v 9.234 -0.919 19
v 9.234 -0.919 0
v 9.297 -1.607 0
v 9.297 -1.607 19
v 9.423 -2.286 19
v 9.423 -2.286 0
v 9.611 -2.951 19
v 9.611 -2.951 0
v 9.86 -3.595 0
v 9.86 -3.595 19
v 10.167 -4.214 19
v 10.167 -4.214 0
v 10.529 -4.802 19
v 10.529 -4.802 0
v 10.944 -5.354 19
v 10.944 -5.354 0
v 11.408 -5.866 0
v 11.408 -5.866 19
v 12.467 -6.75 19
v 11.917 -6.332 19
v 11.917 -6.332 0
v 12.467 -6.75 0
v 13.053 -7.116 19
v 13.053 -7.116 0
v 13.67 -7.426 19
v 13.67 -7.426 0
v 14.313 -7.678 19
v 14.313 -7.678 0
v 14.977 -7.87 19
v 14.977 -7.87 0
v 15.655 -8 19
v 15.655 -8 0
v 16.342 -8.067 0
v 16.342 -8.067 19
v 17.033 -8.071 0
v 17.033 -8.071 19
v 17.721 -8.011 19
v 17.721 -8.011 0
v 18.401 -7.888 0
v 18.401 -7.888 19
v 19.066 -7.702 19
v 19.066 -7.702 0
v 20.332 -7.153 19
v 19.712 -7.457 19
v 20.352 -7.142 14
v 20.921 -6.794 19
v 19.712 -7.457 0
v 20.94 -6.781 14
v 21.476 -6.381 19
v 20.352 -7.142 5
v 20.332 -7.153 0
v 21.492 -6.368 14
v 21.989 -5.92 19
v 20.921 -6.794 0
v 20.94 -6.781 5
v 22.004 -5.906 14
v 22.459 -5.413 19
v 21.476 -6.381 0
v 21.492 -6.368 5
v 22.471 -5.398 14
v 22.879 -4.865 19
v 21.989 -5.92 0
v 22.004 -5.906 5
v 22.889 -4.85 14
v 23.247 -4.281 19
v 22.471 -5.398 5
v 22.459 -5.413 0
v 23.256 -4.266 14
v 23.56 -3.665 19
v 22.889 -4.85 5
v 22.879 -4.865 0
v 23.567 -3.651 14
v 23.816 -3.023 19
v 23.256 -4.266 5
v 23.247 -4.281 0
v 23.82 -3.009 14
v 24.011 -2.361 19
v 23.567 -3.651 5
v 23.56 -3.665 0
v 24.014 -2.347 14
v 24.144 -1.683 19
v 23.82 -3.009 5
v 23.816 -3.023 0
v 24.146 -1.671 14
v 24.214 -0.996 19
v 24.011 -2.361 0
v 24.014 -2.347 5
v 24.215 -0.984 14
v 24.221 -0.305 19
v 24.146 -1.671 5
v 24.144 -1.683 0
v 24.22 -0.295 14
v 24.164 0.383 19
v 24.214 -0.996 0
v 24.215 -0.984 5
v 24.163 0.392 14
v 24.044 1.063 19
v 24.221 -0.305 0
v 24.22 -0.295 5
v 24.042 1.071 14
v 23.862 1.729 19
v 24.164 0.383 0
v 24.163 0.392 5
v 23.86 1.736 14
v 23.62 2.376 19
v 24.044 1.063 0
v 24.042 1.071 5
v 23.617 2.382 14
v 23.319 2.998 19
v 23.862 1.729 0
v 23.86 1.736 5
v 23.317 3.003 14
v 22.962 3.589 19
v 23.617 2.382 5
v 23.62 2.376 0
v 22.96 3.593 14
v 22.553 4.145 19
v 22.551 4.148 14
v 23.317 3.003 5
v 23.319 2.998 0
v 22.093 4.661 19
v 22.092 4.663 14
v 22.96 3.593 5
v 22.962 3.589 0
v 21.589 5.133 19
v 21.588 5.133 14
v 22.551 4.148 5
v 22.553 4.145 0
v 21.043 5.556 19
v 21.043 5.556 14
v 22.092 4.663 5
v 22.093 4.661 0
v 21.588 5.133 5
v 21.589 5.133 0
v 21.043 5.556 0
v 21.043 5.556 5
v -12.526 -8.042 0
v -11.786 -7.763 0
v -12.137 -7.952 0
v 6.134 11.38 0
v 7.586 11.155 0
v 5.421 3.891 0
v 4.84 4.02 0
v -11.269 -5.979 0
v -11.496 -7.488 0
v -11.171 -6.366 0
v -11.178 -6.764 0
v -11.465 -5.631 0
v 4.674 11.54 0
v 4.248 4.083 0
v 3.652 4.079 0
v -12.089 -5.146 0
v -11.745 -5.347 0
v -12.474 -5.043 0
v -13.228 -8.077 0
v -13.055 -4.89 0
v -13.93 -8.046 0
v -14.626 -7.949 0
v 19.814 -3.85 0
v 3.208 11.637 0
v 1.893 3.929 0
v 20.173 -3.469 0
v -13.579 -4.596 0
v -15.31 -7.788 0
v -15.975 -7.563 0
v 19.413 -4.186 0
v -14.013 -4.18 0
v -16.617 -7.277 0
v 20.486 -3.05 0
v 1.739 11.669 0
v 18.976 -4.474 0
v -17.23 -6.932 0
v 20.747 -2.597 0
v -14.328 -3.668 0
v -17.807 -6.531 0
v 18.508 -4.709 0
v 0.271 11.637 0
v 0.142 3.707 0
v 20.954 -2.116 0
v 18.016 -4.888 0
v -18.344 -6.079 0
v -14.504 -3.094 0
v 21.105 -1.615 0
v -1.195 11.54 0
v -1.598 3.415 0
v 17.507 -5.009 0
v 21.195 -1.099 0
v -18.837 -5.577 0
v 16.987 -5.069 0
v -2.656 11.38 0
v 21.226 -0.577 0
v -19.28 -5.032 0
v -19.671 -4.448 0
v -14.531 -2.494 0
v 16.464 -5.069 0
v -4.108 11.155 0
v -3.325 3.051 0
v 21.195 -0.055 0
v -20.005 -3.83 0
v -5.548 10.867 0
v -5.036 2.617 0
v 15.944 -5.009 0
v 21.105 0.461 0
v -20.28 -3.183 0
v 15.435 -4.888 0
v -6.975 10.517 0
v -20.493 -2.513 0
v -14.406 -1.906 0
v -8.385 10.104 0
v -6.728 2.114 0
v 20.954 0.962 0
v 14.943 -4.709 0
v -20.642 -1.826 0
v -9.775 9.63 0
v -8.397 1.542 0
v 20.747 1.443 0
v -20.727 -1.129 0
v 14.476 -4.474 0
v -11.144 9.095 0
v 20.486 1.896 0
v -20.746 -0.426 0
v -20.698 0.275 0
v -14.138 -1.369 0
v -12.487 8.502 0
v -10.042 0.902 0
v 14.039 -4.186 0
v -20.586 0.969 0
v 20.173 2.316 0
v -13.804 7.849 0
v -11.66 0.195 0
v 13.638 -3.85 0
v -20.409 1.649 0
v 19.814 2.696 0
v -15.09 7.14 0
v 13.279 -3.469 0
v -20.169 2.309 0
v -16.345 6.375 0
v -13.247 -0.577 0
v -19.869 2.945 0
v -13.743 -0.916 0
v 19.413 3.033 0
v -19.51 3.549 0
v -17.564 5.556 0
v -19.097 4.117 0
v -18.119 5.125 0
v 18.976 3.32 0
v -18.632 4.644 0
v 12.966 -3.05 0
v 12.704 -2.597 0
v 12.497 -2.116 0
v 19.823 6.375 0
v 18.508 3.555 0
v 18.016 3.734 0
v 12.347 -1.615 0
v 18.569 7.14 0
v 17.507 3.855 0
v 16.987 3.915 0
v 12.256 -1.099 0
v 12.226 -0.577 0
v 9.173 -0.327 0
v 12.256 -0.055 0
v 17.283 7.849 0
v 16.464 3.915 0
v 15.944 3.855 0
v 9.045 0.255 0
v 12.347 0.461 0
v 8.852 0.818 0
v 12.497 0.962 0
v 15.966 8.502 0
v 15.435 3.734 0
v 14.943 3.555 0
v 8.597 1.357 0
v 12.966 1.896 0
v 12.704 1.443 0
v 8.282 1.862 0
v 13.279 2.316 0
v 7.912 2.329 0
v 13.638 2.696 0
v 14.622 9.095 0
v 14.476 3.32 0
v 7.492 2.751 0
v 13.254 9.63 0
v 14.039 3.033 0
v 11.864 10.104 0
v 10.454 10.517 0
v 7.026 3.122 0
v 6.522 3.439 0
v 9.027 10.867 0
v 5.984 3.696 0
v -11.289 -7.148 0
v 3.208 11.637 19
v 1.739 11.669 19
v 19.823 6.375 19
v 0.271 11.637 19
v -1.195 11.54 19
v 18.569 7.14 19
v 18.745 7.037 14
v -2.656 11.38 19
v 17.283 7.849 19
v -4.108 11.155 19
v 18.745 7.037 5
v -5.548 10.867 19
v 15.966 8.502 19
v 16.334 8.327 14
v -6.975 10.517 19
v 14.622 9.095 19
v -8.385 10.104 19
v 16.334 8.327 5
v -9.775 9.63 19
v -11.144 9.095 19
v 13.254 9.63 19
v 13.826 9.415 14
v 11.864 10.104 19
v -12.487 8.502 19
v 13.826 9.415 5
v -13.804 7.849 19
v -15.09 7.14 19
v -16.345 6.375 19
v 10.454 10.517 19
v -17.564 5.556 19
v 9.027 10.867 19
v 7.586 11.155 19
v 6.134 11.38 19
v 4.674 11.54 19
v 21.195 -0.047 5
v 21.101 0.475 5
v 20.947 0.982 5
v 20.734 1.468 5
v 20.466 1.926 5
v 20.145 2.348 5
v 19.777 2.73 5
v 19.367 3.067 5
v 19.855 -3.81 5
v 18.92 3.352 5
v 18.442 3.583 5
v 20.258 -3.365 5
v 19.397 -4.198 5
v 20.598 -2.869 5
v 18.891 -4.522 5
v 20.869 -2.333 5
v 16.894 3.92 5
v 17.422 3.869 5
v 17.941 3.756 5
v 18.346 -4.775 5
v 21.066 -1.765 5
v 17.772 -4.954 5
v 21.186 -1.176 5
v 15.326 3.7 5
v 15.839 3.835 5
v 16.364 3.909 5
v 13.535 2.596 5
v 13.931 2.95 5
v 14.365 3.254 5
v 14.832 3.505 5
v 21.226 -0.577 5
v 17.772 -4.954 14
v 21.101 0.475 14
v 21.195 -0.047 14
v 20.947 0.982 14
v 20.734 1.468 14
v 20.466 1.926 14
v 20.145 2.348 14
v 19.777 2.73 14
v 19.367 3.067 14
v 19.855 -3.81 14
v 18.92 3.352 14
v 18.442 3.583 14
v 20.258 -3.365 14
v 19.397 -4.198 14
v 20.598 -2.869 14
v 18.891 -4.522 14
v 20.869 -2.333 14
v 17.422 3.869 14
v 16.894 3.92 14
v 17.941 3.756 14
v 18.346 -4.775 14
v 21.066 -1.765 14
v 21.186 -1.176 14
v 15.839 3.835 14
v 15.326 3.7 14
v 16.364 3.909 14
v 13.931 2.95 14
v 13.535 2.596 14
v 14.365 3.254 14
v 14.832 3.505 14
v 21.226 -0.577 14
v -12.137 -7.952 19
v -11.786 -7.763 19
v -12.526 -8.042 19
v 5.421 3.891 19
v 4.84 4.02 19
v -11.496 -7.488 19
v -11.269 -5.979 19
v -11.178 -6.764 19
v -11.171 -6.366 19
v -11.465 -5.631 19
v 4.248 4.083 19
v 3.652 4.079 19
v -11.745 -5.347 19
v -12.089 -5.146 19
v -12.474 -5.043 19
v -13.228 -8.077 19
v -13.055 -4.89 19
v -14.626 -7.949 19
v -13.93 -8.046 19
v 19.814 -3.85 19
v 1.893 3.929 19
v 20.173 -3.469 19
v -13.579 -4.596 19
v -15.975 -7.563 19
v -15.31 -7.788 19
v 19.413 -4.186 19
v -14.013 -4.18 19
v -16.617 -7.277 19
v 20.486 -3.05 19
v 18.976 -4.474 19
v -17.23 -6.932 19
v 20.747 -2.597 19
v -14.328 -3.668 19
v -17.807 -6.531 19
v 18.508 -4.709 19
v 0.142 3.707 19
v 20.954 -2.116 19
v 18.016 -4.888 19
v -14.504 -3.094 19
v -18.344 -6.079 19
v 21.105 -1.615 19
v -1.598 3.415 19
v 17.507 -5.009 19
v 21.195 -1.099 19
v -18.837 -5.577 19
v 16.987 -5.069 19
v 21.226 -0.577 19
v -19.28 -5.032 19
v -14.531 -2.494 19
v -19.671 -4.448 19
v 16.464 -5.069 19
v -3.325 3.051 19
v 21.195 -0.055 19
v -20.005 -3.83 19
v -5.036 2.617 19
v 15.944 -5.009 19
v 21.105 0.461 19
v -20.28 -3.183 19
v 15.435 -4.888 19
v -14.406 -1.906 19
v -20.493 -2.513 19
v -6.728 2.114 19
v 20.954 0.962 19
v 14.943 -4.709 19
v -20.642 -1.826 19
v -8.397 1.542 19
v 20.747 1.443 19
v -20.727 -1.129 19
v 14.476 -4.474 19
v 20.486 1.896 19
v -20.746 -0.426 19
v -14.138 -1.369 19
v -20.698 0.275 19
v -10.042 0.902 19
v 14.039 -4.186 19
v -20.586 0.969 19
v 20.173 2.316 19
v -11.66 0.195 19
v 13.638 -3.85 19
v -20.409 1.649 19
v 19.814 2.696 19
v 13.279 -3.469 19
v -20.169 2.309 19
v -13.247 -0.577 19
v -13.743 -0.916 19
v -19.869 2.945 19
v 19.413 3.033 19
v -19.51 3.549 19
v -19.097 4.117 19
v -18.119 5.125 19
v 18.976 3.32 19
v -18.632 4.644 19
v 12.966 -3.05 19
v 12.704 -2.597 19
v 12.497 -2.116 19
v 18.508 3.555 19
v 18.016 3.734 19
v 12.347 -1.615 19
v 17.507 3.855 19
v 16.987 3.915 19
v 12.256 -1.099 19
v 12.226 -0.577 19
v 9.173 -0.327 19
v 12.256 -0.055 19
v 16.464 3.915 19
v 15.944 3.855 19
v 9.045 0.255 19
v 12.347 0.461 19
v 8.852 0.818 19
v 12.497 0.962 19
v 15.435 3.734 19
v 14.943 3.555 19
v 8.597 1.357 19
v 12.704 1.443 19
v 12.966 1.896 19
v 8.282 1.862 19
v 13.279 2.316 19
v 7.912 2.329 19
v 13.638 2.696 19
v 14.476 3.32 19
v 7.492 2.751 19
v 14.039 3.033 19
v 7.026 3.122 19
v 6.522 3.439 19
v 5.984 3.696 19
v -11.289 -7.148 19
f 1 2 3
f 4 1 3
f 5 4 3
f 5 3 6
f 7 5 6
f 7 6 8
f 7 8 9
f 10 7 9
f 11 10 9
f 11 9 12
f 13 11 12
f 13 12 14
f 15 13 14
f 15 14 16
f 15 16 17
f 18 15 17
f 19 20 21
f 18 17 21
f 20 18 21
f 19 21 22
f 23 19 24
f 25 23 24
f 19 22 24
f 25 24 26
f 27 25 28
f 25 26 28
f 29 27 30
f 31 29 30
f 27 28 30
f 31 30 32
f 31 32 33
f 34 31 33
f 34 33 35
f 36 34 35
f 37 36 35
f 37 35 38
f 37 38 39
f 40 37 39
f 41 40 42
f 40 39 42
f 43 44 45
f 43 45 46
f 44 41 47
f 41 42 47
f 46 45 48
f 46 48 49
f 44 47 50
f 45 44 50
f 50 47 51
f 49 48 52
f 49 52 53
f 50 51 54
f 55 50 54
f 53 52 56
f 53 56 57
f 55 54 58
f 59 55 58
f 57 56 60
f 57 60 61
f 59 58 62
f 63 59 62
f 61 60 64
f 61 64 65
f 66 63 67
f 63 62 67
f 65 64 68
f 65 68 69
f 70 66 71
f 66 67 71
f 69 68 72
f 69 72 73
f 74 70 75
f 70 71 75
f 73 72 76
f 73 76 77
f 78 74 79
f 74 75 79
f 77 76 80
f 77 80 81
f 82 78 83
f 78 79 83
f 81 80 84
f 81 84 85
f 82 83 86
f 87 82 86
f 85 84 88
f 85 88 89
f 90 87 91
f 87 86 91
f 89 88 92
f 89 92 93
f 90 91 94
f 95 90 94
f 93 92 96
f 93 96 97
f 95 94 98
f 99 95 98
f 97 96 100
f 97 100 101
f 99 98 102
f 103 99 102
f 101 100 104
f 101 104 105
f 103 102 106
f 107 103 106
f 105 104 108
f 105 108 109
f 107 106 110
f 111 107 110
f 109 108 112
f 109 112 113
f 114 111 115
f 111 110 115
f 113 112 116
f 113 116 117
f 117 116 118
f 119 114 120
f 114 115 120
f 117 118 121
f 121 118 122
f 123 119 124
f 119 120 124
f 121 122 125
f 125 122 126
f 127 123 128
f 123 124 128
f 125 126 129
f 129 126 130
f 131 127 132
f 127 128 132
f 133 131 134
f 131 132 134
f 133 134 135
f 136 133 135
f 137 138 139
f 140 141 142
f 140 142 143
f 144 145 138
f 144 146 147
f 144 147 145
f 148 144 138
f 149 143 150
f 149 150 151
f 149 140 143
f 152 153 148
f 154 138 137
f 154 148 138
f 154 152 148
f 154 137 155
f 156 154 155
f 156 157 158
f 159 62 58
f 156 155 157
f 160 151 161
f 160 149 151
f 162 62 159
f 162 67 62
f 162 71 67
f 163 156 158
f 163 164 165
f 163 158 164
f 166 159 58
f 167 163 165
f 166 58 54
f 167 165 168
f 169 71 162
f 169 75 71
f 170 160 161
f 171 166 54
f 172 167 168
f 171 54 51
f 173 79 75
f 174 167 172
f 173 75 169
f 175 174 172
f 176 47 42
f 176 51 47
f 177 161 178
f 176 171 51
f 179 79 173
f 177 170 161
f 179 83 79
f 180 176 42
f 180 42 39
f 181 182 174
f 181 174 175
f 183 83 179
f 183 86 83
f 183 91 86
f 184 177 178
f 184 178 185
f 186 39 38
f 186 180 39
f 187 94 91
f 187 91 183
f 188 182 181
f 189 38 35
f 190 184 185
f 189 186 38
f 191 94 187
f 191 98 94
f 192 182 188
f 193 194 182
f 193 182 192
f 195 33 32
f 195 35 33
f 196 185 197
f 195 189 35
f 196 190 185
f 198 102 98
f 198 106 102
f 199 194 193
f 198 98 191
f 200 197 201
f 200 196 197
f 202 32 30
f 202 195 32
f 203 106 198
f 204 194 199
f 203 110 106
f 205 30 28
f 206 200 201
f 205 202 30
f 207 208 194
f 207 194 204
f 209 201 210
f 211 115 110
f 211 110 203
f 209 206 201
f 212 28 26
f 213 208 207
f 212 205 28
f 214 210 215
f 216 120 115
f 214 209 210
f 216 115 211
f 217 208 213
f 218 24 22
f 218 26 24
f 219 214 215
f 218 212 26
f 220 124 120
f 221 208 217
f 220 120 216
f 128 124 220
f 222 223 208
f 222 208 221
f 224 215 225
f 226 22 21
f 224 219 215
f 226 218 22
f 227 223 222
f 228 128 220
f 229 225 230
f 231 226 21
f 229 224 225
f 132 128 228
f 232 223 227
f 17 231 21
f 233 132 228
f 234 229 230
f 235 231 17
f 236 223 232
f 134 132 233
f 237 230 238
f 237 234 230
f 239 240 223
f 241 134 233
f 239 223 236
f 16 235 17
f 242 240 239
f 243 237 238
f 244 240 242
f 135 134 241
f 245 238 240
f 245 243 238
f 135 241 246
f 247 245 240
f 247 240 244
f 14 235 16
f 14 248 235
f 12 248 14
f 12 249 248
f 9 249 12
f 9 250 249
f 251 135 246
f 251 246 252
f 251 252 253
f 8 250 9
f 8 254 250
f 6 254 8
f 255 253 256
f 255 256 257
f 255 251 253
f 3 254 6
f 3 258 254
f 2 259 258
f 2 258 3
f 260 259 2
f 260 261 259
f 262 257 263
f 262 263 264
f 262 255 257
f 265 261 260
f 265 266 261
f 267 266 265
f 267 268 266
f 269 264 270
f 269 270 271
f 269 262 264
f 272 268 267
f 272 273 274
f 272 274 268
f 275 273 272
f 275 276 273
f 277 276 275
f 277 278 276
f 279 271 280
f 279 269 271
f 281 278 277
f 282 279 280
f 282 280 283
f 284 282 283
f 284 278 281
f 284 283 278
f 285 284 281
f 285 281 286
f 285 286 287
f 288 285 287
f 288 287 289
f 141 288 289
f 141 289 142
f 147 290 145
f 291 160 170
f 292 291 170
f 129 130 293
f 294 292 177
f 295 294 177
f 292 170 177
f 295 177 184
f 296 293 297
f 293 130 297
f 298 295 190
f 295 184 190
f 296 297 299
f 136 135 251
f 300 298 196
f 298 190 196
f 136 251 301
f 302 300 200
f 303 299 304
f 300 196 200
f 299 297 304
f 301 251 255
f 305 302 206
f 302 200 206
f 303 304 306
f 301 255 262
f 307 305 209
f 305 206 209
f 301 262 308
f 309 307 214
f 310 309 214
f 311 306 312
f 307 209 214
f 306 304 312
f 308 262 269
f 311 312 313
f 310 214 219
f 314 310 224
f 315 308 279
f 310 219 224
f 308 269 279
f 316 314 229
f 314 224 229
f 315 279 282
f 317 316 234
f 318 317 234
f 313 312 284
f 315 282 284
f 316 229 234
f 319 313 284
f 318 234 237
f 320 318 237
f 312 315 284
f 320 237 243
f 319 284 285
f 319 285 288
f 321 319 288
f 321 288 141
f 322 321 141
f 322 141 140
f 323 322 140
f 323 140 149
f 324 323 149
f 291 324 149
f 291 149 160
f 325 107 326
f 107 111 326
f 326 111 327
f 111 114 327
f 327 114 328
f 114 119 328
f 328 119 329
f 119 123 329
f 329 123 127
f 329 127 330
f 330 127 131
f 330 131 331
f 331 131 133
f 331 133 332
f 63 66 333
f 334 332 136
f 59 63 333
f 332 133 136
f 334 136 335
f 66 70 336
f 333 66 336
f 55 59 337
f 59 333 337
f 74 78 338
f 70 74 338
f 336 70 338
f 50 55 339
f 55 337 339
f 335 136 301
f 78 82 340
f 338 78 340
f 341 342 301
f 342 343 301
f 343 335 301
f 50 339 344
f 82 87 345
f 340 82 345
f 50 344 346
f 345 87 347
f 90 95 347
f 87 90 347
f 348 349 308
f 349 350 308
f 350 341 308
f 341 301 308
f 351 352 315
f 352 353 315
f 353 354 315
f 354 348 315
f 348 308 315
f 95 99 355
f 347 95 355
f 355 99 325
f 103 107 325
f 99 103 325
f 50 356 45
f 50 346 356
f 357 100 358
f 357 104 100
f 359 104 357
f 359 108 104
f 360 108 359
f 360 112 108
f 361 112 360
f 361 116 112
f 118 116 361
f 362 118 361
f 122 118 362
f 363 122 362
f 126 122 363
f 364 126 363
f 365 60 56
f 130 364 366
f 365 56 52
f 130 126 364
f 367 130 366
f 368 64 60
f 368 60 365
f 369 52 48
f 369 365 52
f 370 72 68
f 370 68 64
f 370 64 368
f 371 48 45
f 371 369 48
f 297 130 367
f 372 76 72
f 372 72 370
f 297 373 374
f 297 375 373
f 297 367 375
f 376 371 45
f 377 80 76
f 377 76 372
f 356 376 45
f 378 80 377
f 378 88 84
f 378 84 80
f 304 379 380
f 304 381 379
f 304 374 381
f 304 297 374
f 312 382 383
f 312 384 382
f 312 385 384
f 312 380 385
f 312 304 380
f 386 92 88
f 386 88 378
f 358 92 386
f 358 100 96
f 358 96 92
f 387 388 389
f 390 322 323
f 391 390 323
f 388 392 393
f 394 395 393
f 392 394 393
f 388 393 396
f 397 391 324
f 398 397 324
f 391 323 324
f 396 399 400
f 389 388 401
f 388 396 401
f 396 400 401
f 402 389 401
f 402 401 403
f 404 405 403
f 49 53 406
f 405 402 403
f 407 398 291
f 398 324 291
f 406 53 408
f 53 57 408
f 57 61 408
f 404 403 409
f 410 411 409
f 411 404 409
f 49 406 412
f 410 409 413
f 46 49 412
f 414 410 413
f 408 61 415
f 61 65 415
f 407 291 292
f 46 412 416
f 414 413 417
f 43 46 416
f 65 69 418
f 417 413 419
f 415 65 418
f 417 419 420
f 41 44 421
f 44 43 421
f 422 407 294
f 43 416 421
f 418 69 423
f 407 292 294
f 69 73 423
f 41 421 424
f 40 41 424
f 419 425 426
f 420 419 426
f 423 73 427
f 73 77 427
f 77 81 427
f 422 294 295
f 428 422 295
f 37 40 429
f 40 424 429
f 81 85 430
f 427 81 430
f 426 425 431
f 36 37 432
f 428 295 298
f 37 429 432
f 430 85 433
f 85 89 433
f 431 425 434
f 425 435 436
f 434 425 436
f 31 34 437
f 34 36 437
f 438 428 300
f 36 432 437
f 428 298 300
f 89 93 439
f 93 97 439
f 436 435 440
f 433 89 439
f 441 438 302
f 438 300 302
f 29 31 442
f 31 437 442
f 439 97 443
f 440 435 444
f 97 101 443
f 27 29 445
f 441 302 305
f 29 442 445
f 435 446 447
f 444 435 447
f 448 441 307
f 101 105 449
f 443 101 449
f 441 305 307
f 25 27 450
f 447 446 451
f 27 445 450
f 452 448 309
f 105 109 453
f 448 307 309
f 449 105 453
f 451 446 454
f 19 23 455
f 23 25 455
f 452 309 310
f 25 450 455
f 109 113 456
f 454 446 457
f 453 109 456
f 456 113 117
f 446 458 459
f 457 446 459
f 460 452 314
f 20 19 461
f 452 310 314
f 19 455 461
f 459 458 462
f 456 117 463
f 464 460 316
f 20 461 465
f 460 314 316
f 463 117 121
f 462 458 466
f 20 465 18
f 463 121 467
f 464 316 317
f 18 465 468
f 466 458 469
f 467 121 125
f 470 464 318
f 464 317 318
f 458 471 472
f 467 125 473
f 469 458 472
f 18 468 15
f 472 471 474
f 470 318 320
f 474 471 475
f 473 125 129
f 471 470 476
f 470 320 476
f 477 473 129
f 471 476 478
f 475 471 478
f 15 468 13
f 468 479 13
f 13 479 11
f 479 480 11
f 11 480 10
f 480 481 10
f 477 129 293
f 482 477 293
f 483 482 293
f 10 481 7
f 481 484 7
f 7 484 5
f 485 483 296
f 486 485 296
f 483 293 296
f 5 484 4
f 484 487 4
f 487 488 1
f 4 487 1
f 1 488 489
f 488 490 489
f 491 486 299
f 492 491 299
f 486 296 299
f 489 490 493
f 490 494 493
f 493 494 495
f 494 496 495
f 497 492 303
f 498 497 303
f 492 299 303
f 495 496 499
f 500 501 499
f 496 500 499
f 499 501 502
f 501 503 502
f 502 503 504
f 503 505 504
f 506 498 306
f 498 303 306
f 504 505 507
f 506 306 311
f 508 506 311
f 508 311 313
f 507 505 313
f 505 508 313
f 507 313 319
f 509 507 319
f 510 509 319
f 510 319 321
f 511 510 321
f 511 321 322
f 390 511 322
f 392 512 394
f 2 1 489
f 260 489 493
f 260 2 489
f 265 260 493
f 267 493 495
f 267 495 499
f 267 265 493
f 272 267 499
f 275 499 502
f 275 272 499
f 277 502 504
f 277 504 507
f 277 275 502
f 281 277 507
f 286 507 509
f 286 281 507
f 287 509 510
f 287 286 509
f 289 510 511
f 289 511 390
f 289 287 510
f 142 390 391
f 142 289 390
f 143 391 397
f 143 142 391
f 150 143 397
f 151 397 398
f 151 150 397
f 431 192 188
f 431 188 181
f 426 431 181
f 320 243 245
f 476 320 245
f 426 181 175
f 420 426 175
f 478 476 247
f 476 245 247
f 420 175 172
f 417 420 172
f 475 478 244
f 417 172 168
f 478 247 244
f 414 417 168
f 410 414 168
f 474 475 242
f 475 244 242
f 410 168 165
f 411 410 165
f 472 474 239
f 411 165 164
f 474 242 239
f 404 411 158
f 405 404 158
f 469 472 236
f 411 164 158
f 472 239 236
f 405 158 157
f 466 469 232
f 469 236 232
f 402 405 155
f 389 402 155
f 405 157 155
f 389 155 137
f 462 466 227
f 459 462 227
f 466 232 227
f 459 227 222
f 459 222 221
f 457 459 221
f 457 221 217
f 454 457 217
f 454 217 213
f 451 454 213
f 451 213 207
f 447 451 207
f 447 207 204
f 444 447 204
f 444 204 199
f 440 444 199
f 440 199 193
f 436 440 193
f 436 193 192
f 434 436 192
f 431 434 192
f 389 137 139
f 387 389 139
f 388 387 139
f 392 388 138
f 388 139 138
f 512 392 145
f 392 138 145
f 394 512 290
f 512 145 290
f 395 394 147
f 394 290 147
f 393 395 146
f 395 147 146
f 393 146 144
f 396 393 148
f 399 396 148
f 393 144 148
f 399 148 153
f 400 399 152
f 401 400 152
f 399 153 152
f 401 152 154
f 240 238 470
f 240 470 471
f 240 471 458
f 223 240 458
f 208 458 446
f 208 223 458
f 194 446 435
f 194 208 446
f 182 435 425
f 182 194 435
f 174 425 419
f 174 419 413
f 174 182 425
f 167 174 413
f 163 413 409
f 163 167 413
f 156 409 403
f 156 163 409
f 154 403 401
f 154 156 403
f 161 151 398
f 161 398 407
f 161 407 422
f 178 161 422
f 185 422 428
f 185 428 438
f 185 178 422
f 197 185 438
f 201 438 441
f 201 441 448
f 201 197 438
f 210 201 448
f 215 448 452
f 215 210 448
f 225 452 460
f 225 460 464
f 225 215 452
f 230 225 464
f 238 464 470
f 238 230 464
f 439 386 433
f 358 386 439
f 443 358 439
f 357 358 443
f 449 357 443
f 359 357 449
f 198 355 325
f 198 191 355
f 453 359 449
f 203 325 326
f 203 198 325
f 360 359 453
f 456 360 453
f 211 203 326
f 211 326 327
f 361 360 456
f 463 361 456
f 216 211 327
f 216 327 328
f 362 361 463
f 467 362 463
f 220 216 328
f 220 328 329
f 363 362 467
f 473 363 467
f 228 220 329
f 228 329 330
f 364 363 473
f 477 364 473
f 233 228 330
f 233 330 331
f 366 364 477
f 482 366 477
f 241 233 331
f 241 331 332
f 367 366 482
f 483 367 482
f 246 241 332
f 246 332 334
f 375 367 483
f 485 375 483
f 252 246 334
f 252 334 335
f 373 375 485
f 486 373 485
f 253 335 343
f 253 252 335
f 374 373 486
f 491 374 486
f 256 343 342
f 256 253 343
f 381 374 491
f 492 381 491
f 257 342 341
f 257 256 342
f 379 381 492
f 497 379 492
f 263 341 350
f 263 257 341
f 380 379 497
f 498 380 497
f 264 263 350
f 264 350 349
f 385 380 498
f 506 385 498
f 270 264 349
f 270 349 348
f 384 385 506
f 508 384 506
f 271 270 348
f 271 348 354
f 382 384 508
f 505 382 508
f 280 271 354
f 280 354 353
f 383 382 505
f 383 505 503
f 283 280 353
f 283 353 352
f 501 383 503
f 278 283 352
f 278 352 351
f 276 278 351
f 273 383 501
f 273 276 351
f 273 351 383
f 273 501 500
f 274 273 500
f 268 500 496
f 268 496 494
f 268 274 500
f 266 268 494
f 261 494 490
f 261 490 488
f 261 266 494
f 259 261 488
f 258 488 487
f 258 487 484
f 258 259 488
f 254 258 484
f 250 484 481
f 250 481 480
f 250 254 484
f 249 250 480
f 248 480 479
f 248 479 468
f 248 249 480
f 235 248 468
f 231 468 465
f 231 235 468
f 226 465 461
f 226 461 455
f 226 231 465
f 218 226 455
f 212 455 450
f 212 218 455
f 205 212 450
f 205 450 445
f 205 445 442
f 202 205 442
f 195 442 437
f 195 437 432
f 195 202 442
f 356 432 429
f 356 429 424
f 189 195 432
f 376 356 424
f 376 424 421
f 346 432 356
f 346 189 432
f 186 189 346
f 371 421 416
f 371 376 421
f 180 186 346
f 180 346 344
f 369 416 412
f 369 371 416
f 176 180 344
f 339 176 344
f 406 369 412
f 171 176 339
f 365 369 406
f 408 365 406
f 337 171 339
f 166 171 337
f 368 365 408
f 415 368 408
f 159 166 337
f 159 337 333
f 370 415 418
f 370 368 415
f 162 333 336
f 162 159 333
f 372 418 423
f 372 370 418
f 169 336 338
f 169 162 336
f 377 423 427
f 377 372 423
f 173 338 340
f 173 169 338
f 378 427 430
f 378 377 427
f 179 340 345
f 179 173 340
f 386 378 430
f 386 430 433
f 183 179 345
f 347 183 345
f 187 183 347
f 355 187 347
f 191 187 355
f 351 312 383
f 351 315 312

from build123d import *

# Parameters (mm, degrees)
PAD001_DEPTH = 9
SKETCH_R     = 4.5
PAD_DEPTH    = 19


with BuildPart() as pad001:
    # Sketch001 → Pad001 (new body)
    with BuildSketch(Plane.XY.offset(5)):
        Polygon((14.06139, 14.951333), (13.372483, -1.222209), (24.294571, -10.485819), (31.779444, -19.545599), (34.910954, 3.534533), align=None)
    extrude(amount=PAD001_DEPTH)


with BuildPart() as cut:
    # Sketch → Pad (new body)
    with BuildSketch(Plane.XY):
        with BuildLine():
            ThreePointArc((21.042951, 5.555957), (1.73939, 11.668843), (-17.564171, 5.555957))
            ThreePointArc((-17.564171, 5.555957), (-20.279768, -3.182793), (-12.525617, -8.042151))
            ThreePointArc((-12.525617, -8.042151), (-11.161352, -6.565238), (-12.474374, -5.042589))
            ThreePointArc((-13.247026, -0.576927), (-14.504081, -3.094097), (-12.474374, -5.042589))
            ThreePointArc((3.652051, 4.078635), (-5.036131, 2.617099), (-13.247026, -0.576927))
            ThreePointArc((9.233633, -0.919481), (7.491779, 2.750964), (3.652051, 4.078635))
            ThreePointArc((9.233633, -0.919481), (20.331777, -7.15317), (21.042951, 5.555957))
        make_face()
        with Locations((16.725806, -0.576927)):
            Circle(SKETCH_R, mode=Mode.SUBTRACT)
    extrude(amount=PAD_DEPTH)

    # Cut: cut Pad001
    add(pad001.part, mode=Mode.SUBTRACT)


solid = cut.part
